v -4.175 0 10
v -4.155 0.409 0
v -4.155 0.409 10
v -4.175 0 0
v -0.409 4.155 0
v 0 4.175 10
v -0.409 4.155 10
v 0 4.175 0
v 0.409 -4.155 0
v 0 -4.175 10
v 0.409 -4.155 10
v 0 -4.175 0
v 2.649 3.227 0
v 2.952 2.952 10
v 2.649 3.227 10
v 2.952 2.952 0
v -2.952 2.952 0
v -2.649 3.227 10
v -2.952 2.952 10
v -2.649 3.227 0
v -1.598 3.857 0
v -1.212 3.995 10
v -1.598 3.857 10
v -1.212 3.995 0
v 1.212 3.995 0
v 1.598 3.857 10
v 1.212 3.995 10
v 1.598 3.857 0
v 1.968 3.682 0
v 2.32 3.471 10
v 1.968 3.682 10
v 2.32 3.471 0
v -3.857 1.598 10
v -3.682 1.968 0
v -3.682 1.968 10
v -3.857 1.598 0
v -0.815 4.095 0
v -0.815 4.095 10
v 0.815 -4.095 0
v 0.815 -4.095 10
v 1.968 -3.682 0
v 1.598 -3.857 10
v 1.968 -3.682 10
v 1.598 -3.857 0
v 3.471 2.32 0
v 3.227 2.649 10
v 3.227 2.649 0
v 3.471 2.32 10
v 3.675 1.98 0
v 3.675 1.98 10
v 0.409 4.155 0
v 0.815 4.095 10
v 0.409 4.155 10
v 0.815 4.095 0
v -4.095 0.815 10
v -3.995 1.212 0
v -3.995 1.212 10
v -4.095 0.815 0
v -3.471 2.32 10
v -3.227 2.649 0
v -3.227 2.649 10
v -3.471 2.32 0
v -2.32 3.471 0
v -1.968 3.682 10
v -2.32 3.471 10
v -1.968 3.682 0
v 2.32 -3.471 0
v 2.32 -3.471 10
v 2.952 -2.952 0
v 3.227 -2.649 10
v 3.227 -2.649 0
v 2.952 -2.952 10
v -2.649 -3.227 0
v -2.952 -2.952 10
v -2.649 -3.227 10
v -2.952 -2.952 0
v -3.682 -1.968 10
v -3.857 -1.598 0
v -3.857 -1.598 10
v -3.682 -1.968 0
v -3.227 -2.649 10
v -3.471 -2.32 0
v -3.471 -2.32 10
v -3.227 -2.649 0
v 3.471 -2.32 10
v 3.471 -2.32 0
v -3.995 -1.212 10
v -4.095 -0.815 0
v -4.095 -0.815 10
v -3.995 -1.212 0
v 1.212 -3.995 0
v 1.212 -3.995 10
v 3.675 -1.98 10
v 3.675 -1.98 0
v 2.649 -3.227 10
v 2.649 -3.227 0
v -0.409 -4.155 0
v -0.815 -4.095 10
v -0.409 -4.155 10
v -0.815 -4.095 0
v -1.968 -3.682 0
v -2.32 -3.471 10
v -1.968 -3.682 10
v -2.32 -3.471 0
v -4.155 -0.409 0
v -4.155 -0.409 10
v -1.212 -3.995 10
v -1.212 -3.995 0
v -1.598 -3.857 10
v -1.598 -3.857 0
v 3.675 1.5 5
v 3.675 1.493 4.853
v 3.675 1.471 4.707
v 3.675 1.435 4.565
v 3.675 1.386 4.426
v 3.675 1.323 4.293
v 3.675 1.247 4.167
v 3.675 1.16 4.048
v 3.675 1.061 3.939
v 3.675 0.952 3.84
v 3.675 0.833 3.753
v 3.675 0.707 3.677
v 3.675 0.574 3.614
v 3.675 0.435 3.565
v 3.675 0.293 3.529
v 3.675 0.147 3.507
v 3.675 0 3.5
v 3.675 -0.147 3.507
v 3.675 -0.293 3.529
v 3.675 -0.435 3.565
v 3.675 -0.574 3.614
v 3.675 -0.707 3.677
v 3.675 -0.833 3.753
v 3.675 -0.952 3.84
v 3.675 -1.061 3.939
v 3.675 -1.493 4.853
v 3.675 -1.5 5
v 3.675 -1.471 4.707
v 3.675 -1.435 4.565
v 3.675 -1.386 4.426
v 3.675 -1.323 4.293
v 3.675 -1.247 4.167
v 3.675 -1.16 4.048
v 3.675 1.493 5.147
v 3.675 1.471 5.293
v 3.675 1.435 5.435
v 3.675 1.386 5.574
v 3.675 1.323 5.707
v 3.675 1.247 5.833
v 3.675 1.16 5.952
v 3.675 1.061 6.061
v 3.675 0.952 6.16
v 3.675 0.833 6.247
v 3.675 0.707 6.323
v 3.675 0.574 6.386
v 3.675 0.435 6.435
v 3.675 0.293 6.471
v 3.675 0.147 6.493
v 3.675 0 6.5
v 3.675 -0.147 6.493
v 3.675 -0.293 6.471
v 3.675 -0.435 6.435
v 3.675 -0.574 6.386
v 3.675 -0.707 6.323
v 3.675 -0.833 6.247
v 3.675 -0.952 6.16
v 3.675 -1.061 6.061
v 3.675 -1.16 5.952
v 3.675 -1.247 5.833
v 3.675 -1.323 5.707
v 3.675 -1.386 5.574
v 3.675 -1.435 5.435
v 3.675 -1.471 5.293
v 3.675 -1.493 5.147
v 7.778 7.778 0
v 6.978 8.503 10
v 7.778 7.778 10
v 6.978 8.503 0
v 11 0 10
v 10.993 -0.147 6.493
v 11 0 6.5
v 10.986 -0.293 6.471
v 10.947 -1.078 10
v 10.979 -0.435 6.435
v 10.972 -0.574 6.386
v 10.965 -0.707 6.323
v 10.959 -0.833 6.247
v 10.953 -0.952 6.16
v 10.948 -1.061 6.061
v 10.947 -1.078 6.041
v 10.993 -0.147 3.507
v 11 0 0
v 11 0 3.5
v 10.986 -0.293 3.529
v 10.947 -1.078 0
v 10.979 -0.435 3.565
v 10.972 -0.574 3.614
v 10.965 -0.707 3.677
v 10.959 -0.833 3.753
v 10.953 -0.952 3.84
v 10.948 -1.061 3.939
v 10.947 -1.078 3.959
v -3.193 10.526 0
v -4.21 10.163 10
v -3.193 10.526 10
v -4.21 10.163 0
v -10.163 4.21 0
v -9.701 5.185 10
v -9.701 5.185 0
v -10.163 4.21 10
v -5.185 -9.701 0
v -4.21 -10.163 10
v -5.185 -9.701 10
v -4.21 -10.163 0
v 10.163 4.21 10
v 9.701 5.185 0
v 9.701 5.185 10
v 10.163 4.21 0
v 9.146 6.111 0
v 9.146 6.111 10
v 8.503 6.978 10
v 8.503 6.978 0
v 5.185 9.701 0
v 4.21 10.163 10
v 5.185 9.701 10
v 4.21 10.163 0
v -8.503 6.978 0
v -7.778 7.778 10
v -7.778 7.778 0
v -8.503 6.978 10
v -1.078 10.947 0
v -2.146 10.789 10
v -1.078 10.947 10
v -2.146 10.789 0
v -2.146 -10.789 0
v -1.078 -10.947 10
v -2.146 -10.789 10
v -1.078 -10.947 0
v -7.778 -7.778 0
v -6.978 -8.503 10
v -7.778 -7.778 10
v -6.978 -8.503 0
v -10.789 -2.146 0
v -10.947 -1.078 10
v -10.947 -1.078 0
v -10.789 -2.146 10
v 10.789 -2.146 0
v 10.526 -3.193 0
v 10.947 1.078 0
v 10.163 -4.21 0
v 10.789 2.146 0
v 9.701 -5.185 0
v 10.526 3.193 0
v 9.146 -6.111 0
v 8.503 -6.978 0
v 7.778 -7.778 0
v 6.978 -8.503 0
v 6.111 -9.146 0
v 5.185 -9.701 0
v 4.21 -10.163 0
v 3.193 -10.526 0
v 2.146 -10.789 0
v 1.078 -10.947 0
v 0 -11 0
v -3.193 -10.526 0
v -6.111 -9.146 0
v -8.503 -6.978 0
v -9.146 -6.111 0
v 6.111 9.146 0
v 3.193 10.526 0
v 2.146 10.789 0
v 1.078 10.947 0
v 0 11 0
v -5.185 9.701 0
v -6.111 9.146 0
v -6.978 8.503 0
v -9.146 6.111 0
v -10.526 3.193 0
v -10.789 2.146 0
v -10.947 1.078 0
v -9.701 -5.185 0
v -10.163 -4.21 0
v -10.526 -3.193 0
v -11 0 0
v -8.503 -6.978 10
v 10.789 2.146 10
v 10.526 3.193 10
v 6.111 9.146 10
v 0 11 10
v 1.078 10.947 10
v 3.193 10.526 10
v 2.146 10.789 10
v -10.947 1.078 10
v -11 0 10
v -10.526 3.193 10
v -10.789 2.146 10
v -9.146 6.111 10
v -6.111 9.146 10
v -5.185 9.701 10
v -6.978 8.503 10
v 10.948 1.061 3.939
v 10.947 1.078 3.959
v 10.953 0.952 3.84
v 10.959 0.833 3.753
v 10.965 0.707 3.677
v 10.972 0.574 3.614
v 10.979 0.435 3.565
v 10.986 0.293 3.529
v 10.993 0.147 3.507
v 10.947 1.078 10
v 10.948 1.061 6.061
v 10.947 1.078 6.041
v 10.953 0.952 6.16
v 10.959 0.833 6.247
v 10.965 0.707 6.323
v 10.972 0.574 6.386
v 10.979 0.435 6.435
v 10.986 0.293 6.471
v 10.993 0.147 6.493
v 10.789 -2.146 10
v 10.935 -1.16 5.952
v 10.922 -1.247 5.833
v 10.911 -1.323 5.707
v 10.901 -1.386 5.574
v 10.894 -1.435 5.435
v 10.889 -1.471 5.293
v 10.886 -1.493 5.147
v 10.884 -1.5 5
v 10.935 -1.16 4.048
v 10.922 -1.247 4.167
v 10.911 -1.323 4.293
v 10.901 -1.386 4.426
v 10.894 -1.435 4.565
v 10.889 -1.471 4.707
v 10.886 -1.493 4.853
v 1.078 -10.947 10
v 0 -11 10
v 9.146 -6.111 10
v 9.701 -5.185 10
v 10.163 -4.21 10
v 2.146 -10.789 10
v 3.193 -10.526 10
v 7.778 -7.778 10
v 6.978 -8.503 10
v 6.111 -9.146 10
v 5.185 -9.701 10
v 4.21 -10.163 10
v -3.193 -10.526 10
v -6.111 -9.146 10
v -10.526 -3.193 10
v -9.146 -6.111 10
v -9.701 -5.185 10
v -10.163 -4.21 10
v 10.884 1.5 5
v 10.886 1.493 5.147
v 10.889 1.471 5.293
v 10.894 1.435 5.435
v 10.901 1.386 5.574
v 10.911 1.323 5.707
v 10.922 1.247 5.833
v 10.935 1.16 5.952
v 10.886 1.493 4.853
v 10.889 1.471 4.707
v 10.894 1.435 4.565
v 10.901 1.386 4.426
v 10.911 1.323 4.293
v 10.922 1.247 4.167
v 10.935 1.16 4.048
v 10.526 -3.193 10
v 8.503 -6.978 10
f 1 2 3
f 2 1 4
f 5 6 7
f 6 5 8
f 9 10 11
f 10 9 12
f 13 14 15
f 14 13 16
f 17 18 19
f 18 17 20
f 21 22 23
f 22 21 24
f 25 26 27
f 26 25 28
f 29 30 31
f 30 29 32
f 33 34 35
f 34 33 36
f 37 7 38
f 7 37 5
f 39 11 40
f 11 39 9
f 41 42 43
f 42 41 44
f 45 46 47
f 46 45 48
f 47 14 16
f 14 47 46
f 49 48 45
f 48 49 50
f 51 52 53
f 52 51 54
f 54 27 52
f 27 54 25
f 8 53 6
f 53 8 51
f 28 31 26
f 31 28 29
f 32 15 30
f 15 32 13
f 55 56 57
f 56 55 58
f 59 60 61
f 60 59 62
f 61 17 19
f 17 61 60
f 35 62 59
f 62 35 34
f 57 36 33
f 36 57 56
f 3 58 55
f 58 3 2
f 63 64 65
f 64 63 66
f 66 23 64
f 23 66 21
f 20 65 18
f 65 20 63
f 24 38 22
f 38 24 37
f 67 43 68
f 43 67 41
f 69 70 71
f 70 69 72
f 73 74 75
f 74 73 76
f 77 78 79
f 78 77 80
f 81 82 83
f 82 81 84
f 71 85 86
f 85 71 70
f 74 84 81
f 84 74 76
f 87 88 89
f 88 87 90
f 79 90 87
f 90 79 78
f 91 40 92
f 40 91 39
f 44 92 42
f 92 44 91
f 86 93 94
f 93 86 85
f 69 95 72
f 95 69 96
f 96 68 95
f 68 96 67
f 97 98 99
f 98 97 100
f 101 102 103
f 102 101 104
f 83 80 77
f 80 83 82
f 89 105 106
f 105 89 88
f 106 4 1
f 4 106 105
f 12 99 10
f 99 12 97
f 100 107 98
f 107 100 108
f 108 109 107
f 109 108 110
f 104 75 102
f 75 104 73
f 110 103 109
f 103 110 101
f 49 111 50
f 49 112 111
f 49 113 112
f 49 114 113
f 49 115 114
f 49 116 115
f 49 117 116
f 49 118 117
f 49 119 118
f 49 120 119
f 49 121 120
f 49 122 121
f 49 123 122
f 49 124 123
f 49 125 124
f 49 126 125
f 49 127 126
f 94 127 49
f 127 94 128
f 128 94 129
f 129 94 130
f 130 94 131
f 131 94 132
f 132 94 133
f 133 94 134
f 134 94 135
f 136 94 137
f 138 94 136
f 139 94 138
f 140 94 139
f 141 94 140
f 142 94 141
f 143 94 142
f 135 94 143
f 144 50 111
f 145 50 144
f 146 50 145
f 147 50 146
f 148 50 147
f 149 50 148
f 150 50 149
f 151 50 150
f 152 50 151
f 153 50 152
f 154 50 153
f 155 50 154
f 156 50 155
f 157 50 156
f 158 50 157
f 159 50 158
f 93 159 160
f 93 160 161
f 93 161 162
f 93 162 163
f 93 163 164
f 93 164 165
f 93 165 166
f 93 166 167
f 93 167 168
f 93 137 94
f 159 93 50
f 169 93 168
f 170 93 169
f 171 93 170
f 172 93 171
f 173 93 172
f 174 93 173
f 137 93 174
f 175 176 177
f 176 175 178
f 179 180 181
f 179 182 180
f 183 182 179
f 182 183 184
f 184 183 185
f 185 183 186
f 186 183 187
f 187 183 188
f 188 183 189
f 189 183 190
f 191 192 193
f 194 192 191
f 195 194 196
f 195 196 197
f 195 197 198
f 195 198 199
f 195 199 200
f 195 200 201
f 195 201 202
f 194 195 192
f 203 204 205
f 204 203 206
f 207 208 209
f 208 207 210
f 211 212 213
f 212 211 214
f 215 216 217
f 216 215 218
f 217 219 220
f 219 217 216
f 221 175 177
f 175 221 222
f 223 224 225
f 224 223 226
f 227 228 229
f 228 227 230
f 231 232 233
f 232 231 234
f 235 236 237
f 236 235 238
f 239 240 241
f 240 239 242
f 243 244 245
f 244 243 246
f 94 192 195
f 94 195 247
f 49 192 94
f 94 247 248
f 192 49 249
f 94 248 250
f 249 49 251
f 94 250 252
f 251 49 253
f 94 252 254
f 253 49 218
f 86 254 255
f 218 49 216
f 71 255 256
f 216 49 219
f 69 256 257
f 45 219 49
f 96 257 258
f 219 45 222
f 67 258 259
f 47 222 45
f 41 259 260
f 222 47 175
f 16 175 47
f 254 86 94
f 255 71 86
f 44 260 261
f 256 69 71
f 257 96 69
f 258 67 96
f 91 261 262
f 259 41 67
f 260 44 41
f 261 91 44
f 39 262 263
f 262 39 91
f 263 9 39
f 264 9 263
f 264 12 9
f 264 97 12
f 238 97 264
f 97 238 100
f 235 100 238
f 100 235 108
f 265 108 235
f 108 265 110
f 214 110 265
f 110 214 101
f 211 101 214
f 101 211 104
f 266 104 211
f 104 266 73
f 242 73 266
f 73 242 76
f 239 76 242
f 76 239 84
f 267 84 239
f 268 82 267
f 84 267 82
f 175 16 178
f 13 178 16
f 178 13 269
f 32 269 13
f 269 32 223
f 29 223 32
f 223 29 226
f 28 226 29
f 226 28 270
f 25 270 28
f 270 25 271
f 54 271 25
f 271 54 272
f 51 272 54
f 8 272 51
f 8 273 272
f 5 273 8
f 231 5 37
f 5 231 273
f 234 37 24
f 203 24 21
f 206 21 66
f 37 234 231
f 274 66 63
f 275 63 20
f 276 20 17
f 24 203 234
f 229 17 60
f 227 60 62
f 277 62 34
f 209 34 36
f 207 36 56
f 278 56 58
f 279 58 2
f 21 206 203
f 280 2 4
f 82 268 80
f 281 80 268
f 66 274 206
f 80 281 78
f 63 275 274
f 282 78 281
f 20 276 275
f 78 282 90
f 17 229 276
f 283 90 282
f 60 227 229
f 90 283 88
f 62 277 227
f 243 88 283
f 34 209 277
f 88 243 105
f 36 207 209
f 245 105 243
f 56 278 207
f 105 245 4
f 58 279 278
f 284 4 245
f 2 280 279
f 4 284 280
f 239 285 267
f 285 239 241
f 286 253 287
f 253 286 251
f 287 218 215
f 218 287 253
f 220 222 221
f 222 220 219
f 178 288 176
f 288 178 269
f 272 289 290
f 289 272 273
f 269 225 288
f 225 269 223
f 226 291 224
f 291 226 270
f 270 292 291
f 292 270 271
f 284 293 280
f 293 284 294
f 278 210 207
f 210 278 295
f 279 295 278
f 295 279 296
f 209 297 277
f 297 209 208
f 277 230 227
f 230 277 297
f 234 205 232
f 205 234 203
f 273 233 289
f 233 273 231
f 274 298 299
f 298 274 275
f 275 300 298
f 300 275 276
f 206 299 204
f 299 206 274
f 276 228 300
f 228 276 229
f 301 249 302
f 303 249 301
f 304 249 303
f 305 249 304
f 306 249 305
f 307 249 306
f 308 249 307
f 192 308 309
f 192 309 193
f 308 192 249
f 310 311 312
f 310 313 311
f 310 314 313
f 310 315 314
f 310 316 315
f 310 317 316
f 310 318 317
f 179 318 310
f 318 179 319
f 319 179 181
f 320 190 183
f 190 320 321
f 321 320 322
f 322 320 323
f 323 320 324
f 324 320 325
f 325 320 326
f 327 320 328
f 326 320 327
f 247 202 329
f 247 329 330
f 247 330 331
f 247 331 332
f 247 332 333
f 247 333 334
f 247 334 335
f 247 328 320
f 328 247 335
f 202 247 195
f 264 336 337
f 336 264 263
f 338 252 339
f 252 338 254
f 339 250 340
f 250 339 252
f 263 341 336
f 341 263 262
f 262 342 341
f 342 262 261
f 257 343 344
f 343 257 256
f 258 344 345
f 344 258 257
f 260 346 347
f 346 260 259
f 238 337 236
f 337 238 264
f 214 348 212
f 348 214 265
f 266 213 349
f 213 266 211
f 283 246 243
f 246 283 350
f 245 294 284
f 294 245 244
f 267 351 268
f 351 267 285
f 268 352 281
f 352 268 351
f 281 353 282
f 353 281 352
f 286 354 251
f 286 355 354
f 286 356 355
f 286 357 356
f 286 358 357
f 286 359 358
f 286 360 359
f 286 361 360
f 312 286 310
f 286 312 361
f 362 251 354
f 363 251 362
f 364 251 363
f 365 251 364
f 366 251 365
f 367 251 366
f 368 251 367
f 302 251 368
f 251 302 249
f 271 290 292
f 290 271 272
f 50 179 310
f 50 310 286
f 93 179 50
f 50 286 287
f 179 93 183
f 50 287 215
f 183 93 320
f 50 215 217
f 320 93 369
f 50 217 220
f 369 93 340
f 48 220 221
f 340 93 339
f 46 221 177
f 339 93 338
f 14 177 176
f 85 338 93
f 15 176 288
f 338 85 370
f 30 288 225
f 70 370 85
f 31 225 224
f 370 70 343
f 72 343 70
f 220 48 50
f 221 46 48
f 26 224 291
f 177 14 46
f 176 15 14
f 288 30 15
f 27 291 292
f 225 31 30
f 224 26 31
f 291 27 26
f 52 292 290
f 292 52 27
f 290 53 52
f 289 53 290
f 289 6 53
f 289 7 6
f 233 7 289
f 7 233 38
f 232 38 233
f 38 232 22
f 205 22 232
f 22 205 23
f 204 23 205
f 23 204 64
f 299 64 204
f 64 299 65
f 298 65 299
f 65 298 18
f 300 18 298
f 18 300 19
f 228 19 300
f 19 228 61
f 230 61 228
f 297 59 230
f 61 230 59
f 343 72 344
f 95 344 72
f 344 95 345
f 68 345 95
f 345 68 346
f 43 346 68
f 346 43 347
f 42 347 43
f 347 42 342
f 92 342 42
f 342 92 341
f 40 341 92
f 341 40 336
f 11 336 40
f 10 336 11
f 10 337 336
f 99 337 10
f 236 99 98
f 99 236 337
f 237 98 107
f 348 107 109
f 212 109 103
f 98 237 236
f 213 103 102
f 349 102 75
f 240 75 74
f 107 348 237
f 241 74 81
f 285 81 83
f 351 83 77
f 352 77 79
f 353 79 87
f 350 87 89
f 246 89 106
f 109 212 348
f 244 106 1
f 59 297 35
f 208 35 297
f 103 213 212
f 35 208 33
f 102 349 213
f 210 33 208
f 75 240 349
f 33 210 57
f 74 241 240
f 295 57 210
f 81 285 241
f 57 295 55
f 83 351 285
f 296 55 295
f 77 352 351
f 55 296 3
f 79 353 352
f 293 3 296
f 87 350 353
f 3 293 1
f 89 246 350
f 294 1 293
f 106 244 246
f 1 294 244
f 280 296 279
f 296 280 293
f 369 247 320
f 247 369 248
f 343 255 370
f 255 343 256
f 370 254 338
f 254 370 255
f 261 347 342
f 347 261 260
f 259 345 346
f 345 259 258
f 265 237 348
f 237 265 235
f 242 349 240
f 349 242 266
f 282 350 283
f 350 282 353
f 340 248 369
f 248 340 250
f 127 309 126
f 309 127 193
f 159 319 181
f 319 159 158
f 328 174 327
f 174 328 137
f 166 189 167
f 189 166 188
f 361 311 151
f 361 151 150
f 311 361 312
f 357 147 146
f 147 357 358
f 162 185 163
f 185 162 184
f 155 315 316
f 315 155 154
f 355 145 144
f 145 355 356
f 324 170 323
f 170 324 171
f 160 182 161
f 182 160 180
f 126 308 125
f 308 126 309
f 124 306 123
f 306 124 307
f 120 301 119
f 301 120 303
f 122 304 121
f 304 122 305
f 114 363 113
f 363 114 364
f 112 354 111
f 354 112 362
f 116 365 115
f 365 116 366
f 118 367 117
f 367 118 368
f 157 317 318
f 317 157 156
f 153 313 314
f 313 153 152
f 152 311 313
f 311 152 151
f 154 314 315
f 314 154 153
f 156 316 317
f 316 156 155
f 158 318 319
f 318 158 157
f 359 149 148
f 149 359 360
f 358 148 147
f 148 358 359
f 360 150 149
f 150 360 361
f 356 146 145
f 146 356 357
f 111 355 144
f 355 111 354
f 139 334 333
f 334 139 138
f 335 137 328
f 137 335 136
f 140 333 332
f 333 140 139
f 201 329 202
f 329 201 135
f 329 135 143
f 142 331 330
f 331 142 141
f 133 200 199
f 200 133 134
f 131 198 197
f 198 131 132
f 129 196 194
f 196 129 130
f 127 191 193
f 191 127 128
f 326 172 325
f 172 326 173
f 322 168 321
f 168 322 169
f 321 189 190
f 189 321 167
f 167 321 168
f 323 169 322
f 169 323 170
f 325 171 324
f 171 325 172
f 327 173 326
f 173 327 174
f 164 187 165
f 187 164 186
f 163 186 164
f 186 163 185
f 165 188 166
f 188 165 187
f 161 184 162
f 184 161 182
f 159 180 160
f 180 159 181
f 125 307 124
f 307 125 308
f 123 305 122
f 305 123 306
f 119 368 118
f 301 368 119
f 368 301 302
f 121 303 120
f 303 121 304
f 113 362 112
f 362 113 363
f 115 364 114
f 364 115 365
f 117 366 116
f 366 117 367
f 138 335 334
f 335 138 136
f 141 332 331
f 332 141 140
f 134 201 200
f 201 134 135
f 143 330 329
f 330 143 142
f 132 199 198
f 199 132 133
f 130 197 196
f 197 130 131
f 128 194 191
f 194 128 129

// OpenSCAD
// file: parameters.scad
// =============================================================================
// Gen-BX — nightly 2026-10-11 (physics_scorer, honest magpylib watts)
// Gap reduction paid for by a bigger ring: the Gen-BU 8p/12c layout with the copper cut from 8.1 to 6.75 mm (magnet face to magnet face 10.70 → 9.35 mm, so Bz at the copper rises) and the lost window area won back radially, with the poles moved out to R71 and the bobbins stretched to r53–88. The scans show the thin-copper optimum only appears on the bigger ring (on R66 it gains far less), and R71 / Ø194 stator is the largest machine that still packs on one 410 mm plate.
// Clocking 0 deg (magnets N facing S) + D-flat keyed bore + index notch + flip-symmetric hole map.
// Windable 2-piece bobbin; turns = physics_scorer turns_fit; copper only between flanges.
// Steel back-iron: 2× Ø168 × 4.76 mm (3/16") mild-steel discs (steel_backiron_disc.dxf); magnets sit ON the steel
// (through-pockets) -> score with --back-iron. Night 2026-10-11.
// =============================================================================
topology            = "dual_rotor";

// --- Wire / winding (physics_scorer winding-fit) -------------------------------
wire_awg            = 26;
wire_od             = 0.45;     // insulated OD mm (bare 0.405)
fill_realistic      = 0.65;     // insulated-wire area / window (DENSE layered wind with a jig; scorer cap 0.65)
turns               = 410;       // = physics_scorer turns_fit (do NOT raise)
coil_former_type    = "bobbin";
coil_core_inset     = 14.87;     // radial copper build: hub = copper boundary inset by this
wind_build_axial    = 0.0;      // nothing proud of the flanges
wind_build_radial   = 0.0;

// --- Bobbin (base + lid) ---------------------------------------------------------
coil_id_r           = 53.00;    // copper boundary sector
coil_od_r           = 88.00;
span_deg            = 26.43;    // = pitch - 2*asin((wall+0.85)/coil_id_r) -> >=1.2 mm stator web
former_web          = 6.75;     // copper height between flanges (TALL copper: steel keeps Bz up)
flange_t            = 0.80;     // >= 0.8 mm FDM wall rule (tall winds push on the flanges)
wall                = 0.80;     // flange lip beyond copper
former_bare_h       = former_web + 2 * flange_t;
coil_envelope_h     = former_bare_h + 2 * wind_build_axial;
tab_w               = 7.0;
tab_len             = 7.0;
tab_h               = former_bare_h / 2;
pin_d               = 1.9;      // 1.75 mm filament locating pin
coil_mount_r        = coil_od_r + 0.2 + 4.0;
lead_y              = 1.6;
lead_slot_w         = 0.9;
lead_groove_d       = 0.6;

// --- Gap -------------------------------------------------------------------------
run_clear           = 0.50;     // rotor face -> flange
gap_spacer_h        = run_clear + wind_build_axial;
m2m                 = coil_envelope_h + 2 * run_clear;   // rotor face to rotor face (= gap_sleeve length)

// --- Stator ----------------------------------------------------------------------
coil_stations       = 12;
bay_clear           = 0.25;
stator_thick        = former_bare_h;                        // bobbins flush both faces
stator_od           = 194;
shaft_clear_stator  = 14.0;     // stator is static; gap sleeve OD 12 spins inside

// --- Rotor(s) --------------------------------------------------------------------
magnet_Br           = 1.43;     // N52
magnet_d_large      = 20.0;
magnet_h_large      = 5.0;      // one O20x5 per pocket
magnet_h_small      = 5.0;      // unused: no O5 pockets in this kit
halbach_magnetisation = "none";  // NO O5 assist magnets in this kit (scan: they lower the 4-pole score)
rotor_b_same_axis   = true;     // same-index magnets share one axis: N faces S across the gap
large_pocket_d      = 20.3;
small_pocket_d      = 5.3;
pocket_h            = 5.00;     // THROUGH the carrier: magnet back face sits on the steel disc (FLUSH seat: carrier = magnet height, magnet face level with the rotor face)
large_n             = 8;
R_large             = 71.0;
small_r_list        = [];       // no O5 pockets
carrier_od          = 168.0;
carrier_thick       = pocket_h;
hub_h               = 12.0;     // > steel_t + insert: radial set-screw clears the steel
hub_od              = 24.0;     // slim hub so the M4 brace rods fit at R~18 inside the coil ring
hub_insert_d        = 4.0;      // M3 heat-set insert, radial, bears on the D-flat
rotor_b_offset_deg  = 0.0;      // CLOCKING: magnets directly opposite
shaft_key           = "dflat";
dflat_depth         = 0.5;      // 8 mm shaft with 0.5 mm flat (7.5 across flat)
index_notch_d       = 3.0;

// --- Steel back-iron (buyable laser-cut) -------------------------------------------
steel_t             = 4.76;      // mild steel thickness (image method ignores it; sized from steel_flux.py so the return path stays well below saturation)
steel_center_hole   = 26.0;     // slips over the rotor hub (OD 24)
steel_od            = carrier_od;   // steel disc OD = rotor carrier OD

// --- Modular MAX interface ----------------------------------------------------------
shaft_bore          = 8.35;
dflat_x             = 4.0 - dflat_depth + (shaft_bore - 8.0) / 2;
bearing_d           = 21.85;
bearing_h           = 7.2;
m3_clear            = 3.5;
bolt_r_inner        = 30.0;     // M3 steel-disc clamp bolts (inside the magnet ring)
bolt_n_inner        = 4;
bolt_inner_angles   = [0, 90, 180, 270];
bolt_r_outer        = 44.0;     // second M3 steel-disc clamp ring
bolt_outer_angles   = [67.5, 112.5, 247.5, 292.5];
flange_bolt_r       = 91.5;     // frame rods: OUTSIDE the rotor OD (rotors spin inside them)
flange_bolt_n       = 4;
flange_bolt_offset  = 45.00;    // between coil stations -> never cuts a lead groove/tab
brace_r             = 18.0;
brace_d             = 4.3;      // temporary M4 jack rods (assembly only)
brace_n             = 4;
brace_angles        = [45, 135, 225, 315];          // flip-symmetric

spacer_pad_od       = 14.0;
spacer_pad_id       = m3_clear;
endbell_od          = 193.0;
endbell_thick       = 8.0;
endbell_shaft_clear = 10.0;
collar_h            = 10.0;
standoff_od         = 9.0;
frame_standoff_h    = run_clear + carrier_thick + hub_h + collar_h + 2.0;
sleeve_od           = 12.0;
plate_max_mm        = 410;

$fn = 64;
// main file
// Gen-BX — shaft collar with D-flat bore (set screw bears on the flat); print x4
include <parameters.scad>;
$fn = 64;
// D-flat keyed bore: flat faces +X (angle 0 = magnet pocket 0 = index notch)
module dflat_bore(h) {
    intersection() {
        cylinder(d=shaft_bore, h=h);
        translate([-shaft_bore, -shaft_bore, 0]) cube([shaft_bore + dflat_x, 2*shaft_bore, h]);
    }
}

od = 22; h = collar_h; set_d = 3.0;
difference() {
    cylinder(d=od, h=h);
    translate([0, 0, -0.1]) dflat_bore(h + 0.2);
    translate([0, 0, h/2]) rotate([0, 90, 0]) cylinder(d=set_d, h=od);
}
